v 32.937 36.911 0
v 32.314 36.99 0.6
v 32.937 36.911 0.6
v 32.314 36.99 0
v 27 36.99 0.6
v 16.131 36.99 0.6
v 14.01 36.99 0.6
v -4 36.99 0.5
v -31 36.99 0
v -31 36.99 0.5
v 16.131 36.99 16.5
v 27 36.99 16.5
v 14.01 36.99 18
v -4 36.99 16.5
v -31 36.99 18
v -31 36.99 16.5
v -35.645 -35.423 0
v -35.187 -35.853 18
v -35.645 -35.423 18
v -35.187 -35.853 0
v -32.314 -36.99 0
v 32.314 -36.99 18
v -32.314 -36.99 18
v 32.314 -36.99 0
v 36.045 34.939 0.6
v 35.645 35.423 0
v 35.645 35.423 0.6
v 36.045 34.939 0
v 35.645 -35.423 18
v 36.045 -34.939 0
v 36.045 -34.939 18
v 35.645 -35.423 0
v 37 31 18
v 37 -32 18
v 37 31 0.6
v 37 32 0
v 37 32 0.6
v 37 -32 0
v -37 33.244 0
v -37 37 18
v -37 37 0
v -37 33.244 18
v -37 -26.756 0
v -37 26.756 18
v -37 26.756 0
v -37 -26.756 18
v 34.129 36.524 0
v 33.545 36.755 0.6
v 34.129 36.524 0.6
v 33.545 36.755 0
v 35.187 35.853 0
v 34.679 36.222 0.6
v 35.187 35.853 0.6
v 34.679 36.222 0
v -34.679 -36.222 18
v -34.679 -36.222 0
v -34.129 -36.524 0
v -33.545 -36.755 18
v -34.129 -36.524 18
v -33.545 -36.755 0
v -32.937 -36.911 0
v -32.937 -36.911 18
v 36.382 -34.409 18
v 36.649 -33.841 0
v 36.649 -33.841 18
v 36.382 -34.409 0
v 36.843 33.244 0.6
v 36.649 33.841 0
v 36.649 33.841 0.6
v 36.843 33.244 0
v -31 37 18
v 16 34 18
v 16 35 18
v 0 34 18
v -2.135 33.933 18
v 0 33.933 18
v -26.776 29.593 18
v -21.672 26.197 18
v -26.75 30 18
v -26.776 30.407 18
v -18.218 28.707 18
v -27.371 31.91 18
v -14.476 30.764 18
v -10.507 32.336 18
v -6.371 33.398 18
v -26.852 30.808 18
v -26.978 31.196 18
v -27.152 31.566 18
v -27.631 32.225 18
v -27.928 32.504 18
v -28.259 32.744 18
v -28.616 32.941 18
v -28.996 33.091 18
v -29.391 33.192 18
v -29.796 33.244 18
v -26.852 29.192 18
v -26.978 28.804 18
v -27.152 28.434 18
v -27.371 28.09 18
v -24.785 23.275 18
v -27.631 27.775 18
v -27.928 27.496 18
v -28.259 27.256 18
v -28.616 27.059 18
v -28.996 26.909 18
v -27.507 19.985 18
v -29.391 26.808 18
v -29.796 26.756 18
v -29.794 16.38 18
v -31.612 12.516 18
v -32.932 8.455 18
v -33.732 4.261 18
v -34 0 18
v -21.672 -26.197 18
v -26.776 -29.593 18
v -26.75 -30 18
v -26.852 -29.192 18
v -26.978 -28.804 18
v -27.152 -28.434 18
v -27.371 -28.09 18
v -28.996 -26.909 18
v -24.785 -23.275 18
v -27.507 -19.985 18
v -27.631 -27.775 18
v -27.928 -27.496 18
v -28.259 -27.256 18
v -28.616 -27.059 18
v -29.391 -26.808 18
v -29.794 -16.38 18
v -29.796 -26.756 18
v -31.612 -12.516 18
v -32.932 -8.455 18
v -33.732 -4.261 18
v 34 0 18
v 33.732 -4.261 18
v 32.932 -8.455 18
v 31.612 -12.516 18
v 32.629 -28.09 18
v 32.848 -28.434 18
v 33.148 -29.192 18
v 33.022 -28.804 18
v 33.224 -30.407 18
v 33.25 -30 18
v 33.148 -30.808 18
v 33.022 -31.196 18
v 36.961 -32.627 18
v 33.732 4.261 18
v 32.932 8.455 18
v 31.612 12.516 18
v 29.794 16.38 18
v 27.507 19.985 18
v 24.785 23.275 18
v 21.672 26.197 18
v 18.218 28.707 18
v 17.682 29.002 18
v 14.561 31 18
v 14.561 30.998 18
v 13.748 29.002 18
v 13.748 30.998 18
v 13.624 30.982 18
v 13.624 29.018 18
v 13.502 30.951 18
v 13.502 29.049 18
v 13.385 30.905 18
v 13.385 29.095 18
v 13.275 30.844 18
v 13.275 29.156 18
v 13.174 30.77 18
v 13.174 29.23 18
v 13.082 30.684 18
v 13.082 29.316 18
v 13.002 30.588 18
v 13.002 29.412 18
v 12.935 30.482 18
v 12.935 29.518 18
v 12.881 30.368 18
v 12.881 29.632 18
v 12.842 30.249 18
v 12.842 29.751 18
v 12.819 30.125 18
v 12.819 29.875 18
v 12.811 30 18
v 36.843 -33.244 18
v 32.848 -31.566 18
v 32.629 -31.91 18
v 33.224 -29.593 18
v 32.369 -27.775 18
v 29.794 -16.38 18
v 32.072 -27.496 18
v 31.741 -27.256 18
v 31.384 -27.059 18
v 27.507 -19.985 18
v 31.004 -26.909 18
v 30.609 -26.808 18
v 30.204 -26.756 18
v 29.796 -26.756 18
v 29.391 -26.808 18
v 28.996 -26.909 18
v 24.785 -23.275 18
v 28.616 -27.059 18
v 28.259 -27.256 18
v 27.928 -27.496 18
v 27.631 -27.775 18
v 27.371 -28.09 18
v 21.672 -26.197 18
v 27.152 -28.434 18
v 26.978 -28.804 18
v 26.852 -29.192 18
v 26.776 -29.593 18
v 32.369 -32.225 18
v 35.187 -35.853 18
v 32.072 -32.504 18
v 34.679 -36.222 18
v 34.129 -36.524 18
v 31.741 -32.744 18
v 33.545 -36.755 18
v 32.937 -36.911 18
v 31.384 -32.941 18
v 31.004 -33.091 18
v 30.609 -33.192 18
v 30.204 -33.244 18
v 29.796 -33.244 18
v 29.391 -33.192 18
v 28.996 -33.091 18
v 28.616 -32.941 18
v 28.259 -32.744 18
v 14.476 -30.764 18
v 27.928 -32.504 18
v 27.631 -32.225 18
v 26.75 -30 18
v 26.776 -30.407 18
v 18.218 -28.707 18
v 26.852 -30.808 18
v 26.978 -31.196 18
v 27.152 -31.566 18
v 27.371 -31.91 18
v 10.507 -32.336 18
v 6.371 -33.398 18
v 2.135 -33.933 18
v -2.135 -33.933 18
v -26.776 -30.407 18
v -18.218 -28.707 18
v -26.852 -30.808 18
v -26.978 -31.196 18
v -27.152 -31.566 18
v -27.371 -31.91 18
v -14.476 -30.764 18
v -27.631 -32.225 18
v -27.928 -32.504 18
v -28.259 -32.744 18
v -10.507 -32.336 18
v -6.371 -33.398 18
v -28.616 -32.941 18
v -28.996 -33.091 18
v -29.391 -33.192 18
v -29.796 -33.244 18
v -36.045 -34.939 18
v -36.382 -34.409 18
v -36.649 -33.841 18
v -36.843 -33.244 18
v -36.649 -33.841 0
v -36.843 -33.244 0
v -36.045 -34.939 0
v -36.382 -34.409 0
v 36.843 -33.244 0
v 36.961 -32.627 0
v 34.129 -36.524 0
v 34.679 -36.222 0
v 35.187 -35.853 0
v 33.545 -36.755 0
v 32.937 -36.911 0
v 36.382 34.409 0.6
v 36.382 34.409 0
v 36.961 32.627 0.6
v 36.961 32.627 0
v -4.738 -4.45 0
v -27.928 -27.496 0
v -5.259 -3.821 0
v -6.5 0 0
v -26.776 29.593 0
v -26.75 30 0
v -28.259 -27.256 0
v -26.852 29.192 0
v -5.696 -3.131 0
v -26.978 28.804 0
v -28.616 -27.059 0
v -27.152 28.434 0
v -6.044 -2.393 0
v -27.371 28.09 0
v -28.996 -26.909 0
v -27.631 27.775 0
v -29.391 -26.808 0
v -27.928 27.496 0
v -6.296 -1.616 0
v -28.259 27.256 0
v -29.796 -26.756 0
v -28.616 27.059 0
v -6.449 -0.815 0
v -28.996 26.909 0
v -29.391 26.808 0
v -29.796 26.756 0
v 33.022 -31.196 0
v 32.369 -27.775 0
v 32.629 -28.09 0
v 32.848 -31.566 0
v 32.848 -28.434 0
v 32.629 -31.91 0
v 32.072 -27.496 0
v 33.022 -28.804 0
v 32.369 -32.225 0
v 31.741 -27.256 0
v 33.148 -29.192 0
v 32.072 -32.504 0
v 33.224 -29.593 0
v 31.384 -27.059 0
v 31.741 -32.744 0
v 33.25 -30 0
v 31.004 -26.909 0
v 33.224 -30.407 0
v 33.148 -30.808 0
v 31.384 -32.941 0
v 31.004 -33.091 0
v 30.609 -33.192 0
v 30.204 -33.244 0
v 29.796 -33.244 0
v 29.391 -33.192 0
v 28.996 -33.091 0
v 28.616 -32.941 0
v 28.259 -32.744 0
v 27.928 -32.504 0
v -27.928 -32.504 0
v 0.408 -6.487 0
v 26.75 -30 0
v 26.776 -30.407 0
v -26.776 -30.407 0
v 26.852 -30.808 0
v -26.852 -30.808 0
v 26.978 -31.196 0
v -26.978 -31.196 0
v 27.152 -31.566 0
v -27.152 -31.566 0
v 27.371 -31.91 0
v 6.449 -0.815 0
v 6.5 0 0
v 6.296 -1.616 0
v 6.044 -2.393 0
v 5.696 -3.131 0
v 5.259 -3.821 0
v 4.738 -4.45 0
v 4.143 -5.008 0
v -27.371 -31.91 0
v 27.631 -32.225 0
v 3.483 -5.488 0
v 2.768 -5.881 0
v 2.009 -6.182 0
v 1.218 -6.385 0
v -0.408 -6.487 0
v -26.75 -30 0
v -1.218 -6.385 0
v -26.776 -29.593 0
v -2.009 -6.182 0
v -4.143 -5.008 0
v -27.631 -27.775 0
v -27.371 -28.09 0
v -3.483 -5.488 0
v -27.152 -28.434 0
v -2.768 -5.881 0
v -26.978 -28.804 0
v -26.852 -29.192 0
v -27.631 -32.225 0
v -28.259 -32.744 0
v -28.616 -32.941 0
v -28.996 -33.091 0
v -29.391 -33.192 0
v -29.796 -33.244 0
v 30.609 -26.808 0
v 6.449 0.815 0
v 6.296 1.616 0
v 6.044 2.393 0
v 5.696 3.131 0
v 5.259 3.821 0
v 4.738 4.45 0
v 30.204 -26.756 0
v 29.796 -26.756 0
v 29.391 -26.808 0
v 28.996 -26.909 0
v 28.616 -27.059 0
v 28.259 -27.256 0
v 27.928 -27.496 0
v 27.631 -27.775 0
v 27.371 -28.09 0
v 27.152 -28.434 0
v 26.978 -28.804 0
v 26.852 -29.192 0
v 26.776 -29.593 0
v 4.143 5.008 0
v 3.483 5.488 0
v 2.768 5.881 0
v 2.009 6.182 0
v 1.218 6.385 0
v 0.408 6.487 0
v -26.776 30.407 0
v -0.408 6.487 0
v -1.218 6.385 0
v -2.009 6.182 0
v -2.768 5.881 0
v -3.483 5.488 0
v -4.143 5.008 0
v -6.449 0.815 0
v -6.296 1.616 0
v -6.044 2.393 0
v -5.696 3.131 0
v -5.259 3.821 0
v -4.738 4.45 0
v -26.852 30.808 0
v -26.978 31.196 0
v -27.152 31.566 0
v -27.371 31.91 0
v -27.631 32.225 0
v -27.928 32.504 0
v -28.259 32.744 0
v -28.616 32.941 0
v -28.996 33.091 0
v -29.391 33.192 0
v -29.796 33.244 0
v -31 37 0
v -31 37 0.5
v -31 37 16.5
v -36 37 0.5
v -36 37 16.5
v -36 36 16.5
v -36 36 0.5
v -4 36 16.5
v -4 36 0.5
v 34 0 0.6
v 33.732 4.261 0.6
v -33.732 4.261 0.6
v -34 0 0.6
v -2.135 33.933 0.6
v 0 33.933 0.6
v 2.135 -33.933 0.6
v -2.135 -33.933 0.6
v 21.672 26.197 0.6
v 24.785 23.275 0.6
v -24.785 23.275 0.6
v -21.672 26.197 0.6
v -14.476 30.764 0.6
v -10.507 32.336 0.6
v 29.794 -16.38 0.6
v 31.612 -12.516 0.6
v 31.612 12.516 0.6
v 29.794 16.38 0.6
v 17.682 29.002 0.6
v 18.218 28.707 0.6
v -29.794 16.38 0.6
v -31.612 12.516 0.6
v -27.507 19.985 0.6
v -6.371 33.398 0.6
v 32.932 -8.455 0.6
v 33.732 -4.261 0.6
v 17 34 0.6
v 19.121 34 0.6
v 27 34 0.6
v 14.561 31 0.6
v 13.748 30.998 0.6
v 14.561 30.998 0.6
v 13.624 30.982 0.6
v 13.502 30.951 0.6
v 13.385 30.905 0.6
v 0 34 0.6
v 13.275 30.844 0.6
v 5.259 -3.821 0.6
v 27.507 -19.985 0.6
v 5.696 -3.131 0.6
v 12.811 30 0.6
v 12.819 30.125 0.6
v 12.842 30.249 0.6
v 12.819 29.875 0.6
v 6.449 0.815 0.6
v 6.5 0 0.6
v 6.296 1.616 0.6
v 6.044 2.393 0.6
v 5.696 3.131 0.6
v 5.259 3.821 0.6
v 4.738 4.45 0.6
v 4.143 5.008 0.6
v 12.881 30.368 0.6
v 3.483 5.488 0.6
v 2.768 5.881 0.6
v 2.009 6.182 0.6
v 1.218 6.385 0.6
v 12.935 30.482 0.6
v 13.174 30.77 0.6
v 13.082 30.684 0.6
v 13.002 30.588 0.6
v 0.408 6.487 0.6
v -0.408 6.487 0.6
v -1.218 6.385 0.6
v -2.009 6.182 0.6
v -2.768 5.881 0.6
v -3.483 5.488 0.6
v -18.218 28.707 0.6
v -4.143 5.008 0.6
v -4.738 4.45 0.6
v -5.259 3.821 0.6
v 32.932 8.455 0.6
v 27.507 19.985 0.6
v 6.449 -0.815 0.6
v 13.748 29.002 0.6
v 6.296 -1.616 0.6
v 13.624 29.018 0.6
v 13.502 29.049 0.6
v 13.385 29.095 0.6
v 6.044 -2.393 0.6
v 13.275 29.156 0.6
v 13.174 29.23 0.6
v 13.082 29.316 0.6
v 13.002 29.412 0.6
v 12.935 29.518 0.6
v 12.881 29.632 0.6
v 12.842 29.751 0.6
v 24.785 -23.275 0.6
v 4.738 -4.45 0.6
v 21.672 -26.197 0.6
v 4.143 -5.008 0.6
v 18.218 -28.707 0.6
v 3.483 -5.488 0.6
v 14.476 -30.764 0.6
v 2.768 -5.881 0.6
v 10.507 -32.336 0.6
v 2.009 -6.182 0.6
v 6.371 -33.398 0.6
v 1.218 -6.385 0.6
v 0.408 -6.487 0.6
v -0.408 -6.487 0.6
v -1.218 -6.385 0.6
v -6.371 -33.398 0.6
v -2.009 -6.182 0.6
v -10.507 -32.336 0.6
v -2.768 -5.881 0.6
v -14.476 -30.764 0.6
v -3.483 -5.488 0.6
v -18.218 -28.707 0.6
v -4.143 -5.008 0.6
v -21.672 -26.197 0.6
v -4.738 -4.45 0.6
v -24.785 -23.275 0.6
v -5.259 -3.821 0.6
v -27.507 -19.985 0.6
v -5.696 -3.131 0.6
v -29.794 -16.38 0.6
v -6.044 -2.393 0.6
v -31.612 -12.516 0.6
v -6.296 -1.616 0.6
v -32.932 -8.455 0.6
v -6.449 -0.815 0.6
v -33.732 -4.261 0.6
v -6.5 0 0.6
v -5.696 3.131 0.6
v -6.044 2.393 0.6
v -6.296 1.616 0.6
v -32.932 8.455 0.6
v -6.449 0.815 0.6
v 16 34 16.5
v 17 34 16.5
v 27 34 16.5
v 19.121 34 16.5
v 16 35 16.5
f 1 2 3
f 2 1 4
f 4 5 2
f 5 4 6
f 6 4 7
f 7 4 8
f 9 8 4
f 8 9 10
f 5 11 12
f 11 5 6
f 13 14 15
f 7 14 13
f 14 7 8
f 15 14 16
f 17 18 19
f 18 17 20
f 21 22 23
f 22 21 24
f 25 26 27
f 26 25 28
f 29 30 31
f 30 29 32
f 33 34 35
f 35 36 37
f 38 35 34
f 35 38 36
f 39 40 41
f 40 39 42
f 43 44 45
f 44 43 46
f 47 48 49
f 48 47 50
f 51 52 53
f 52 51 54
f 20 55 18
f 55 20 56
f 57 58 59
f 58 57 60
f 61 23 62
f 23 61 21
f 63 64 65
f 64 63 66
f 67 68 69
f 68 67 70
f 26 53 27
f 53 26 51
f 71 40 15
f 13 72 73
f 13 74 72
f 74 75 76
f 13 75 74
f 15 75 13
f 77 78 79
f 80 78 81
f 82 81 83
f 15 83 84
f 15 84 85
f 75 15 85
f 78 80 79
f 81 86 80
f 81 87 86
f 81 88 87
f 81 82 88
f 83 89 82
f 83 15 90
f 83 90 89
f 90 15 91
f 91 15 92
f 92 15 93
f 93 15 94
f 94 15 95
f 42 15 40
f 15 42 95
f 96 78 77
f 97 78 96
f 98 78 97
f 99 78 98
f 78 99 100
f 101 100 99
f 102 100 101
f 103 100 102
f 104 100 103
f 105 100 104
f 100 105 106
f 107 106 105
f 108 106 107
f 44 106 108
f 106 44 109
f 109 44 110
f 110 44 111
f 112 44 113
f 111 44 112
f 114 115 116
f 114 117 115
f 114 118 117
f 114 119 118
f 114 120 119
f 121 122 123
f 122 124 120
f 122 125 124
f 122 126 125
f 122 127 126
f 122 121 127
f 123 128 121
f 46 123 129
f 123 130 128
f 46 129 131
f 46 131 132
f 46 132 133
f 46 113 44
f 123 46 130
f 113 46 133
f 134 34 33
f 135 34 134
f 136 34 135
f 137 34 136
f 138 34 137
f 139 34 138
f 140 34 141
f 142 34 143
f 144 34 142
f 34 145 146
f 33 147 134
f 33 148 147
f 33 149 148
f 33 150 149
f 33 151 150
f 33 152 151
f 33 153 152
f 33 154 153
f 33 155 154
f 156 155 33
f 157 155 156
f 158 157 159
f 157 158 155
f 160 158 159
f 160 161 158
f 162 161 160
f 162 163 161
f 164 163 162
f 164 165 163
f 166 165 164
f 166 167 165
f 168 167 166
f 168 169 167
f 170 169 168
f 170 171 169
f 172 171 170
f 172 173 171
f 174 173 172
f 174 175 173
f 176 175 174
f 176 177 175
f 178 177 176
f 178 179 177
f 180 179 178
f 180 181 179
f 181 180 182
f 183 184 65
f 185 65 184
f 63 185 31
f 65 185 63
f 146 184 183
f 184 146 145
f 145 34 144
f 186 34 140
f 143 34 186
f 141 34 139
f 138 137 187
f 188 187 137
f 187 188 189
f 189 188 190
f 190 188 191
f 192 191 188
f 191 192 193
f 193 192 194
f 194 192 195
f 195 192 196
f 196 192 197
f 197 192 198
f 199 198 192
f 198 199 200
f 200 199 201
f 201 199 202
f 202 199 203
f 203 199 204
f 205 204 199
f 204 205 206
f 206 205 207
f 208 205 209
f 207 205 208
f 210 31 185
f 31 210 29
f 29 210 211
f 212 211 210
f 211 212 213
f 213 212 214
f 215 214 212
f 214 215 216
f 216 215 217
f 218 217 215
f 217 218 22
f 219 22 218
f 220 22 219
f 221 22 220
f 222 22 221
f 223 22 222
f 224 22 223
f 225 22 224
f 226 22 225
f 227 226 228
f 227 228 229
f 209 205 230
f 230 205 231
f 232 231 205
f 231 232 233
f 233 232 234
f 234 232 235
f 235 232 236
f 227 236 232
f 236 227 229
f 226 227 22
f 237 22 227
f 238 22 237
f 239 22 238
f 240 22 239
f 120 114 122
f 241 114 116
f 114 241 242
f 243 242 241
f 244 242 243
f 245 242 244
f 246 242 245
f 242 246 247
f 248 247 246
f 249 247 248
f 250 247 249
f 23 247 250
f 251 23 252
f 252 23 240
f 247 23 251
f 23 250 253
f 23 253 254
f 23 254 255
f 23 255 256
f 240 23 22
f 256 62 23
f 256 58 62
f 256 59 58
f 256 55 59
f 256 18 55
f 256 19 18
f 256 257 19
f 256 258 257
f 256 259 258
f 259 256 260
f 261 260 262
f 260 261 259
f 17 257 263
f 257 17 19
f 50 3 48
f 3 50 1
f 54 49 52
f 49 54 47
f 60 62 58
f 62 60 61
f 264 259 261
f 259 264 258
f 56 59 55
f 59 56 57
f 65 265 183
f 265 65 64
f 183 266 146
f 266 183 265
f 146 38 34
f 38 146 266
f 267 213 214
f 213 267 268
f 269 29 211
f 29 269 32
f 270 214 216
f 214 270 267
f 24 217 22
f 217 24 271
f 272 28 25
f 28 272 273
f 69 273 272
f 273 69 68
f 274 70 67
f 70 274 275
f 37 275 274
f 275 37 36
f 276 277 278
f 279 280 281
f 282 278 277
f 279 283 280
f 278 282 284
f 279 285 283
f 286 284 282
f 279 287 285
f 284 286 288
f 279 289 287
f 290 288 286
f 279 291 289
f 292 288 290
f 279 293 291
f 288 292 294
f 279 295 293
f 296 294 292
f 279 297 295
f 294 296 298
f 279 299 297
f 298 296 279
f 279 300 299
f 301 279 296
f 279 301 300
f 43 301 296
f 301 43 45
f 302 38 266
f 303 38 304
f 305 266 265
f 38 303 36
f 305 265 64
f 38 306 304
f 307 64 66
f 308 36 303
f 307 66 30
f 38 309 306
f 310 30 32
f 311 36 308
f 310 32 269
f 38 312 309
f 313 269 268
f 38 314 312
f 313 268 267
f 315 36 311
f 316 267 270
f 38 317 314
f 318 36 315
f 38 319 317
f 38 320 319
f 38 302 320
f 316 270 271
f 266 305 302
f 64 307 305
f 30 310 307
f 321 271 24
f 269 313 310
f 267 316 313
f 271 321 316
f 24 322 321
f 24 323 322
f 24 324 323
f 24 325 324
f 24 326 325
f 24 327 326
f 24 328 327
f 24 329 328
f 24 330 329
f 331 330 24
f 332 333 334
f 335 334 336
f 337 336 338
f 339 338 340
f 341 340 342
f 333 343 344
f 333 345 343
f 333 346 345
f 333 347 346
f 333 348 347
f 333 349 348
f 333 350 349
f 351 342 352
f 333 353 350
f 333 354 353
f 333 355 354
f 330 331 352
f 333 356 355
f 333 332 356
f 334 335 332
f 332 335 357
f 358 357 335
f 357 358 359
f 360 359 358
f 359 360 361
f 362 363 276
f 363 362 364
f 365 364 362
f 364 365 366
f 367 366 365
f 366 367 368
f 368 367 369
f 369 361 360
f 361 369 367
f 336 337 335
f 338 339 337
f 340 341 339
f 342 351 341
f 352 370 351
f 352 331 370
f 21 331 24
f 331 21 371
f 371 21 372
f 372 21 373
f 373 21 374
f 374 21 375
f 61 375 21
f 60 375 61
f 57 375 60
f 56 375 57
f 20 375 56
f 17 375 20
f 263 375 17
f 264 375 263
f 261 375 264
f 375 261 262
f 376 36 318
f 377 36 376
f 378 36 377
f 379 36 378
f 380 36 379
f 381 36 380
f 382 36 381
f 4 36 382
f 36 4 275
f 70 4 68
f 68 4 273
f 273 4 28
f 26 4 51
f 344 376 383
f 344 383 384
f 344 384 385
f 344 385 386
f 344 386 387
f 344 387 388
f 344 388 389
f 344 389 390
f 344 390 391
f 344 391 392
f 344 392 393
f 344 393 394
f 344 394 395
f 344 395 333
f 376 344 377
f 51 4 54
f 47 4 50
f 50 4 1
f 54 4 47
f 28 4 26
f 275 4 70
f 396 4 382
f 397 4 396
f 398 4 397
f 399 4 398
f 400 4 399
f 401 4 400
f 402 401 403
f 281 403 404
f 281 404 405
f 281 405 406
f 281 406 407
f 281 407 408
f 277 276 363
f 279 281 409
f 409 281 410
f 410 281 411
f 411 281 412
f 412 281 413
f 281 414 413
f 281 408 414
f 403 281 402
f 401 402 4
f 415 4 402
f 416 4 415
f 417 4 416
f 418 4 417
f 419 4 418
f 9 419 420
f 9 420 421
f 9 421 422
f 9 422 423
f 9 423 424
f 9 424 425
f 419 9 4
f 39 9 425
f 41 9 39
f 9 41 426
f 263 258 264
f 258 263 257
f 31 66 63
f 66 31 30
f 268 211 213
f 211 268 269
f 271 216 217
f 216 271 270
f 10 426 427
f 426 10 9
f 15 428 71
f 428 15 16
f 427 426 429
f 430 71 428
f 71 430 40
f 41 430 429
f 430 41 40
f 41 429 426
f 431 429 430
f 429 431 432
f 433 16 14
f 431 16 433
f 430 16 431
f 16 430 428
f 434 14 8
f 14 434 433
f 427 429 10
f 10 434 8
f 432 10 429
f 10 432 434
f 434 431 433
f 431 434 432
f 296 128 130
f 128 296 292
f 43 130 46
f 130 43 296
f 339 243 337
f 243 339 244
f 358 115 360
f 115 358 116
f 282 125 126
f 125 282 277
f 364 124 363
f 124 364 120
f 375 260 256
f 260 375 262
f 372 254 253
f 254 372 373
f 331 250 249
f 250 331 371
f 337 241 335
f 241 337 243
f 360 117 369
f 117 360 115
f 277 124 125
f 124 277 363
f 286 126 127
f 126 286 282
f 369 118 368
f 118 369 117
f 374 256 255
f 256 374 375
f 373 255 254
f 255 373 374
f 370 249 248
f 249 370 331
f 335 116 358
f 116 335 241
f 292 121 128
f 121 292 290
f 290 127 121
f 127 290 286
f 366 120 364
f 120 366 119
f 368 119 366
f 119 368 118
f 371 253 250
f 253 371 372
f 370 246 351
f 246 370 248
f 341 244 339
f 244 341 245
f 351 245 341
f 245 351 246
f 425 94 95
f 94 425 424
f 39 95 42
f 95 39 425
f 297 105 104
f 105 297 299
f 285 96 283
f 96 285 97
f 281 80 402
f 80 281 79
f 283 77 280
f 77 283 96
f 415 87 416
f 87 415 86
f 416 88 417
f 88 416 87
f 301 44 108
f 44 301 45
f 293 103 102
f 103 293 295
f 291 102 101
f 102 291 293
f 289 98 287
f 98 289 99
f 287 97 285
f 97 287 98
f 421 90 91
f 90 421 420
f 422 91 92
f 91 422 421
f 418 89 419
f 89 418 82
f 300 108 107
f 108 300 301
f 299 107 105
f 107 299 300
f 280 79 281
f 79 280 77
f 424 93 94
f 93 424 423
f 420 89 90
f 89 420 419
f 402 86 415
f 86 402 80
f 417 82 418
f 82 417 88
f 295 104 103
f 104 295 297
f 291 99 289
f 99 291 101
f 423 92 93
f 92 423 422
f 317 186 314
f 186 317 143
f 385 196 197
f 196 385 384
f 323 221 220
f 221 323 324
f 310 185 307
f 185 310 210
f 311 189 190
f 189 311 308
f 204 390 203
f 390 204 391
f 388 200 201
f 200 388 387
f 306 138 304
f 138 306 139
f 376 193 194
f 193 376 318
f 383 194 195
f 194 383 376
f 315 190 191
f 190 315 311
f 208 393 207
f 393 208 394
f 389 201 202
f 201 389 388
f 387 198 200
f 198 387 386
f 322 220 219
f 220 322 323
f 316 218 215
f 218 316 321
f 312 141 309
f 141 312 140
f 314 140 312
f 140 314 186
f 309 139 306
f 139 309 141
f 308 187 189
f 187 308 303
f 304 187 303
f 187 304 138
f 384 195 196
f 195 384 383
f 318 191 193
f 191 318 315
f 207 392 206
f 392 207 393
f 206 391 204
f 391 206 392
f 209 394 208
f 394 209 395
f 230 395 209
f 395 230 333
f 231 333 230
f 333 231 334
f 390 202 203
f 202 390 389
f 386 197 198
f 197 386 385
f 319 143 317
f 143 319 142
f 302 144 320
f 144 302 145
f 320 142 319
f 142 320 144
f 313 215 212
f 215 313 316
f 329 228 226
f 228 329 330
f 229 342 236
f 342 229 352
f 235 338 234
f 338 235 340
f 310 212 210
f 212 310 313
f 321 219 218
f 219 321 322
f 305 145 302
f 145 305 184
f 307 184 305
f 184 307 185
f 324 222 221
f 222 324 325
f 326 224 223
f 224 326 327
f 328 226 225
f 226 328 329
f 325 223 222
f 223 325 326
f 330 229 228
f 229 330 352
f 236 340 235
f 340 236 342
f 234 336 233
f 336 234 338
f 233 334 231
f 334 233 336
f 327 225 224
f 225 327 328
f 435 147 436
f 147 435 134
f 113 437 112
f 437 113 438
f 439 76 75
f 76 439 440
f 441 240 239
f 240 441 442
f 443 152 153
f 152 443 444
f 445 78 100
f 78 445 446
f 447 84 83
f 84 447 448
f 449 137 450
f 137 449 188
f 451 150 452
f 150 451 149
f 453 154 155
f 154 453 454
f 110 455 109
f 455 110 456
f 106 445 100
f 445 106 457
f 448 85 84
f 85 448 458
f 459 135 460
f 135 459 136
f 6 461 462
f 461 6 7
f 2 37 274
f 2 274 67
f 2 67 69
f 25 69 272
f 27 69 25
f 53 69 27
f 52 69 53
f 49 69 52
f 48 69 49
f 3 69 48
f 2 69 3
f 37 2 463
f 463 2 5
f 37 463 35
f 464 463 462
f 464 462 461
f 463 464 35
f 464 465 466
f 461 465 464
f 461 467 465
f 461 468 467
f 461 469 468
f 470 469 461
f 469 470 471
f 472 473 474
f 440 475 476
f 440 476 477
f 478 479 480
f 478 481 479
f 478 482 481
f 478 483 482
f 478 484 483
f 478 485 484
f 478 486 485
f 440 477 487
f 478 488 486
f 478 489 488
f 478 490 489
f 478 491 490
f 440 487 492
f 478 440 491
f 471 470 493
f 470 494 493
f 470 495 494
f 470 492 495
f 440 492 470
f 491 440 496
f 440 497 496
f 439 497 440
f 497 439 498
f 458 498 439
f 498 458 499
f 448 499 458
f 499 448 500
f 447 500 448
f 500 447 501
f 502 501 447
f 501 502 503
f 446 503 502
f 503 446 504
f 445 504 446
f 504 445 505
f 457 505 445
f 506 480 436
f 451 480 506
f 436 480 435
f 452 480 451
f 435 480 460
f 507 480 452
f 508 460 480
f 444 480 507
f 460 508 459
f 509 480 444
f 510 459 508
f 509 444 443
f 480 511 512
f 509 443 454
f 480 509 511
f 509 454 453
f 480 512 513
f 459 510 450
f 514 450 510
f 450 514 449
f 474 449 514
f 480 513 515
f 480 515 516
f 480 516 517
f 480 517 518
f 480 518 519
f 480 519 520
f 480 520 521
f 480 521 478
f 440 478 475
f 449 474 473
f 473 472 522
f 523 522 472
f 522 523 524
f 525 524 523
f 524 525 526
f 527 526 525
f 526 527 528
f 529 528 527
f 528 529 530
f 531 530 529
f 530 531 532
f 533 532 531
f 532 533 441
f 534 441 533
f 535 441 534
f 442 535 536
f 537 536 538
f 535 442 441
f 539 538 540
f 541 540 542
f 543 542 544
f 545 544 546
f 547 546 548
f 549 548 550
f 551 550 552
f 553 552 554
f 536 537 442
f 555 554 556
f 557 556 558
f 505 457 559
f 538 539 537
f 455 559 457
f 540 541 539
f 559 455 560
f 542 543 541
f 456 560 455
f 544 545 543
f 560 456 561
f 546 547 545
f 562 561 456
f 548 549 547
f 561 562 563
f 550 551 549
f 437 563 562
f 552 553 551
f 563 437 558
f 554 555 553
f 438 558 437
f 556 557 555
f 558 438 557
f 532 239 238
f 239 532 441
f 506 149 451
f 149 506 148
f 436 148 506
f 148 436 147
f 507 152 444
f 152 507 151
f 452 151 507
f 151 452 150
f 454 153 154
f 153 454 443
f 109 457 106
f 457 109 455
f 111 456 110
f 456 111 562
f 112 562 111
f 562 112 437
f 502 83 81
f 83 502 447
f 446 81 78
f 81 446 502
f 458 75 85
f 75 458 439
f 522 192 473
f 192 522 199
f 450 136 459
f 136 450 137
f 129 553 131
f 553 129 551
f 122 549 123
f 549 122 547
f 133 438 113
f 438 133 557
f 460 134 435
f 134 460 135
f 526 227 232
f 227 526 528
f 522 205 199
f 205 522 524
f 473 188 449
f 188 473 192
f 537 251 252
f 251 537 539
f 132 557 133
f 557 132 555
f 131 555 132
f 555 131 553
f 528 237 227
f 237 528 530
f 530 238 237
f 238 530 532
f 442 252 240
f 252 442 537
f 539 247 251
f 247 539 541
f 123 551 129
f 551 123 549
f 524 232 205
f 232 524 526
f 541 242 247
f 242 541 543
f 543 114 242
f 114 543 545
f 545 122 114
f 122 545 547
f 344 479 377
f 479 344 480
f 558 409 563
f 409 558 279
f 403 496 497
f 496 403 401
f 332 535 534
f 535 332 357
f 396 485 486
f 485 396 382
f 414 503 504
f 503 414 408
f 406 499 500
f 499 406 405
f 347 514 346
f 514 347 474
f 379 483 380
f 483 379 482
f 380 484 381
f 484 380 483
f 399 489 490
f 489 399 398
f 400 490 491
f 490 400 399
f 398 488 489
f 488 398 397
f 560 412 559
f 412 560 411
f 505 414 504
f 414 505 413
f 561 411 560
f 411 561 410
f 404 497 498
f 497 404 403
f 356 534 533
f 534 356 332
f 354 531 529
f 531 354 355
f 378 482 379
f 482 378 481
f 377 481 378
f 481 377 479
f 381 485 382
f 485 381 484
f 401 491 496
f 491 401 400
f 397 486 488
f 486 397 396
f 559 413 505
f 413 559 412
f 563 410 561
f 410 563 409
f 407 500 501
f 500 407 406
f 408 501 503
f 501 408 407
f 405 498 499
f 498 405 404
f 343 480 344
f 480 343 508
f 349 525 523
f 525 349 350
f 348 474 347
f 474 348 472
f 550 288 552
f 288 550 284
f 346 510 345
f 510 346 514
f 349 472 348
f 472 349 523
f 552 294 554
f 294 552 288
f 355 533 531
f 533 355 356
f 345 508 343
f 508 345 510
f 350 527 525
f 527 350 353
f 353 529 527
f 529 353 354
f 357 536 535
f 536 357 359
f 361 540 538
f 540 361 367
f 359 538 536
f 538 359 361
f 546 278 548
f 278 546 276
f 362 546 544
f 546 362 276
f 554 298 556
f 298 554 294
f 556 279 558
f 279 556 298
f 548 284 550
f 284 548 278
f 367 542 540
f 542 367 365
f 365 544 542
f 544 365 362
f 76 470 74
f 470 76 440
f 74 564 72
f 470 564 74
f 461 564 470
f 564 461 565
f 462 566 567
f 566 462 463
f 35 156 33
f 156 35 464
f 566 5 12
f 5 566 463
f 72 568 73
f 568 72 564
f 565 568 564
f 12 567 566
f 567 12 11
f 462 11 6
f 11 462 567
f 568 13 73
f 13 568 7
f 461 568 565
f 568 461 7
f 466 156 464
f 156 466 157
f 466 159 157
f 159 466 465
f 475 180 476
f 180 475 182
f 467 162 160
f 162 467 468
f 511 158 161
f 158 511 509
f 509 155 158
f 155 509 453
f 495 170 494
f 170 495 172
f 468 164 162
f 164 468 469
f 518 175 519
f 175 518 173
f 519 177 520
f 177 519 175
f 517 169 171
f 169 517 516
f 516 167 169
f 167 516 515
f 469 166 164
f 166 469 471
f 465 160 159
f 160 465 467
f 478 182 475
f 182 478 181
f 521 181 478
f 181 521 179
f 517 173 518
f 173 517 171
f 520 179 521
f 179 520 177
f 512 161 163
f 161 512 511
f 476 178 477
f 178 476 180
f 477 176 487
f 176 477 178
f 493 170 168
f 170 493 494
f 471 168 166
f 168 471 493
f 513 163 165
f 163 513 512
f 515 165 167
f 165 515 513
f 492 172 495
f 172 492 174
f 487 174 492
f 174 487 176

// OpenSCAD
$fn = 50;


union() {
	difference() {
		union() {
			translate(v = [0, 0, 0]) {
				rotate(a = [0, 0, 0]) {
					hull() {
						translate(v = [-32.0000000000, 32.0000000000, 0]) {
							rotate(a = [0, 0, 0]) {
								translate(v = [0, 0, 0]) {
									rotate(a = [0, 0, 0]) {
										cylinder(h = 18, r = 5);
									}
								}
							}
						}
						translate(v = [32.0000000000, 32.0000000000, 0]) {
							rotate(a = [0, 0, 0]) {
								translate(v = [0, 0, 0]) {
									rotate(a = [0, 0, 0]) {
										cylinder(h = 18, r = 5);
									}
								}
							}
						}
						translate(v = [-32.0000000000, -32.0000000000, 0]) {
							rotate(a = [0, 0, 0]) {
								translate(v = [0, 0, 0]) {
									rotate(a = [0, 0, 0]) {
										cylinder(h = 18, r = 5);
									}
								}
							}
						}
						translate(v = [32.0000000000, -32.0000000000, 0]) {
							rotate(a = [0, 0, 0]) {
								translate(v = [0, 0, 0]) {
									rotate(a = [0, 0, 0]) {
										cylinder(h = 18, r = 5);
									}
								}
							}
						}
					}
				}
			}
			translate(v = [-37.0000000000, 31.0000000000, 0]) {
				rotate(a = [0, 0, 0]) {
					cube(size = [6, 6, 18]);
				}
			}
		}
		union() {
			#translate(v = [-36.0000000000, 36.0000000000, 0.5000000000]) {
				rotate(a = [0, 0, 0]) {
					cube(size = [32, 1, 16]);
				}
			}
			translate(v = [-37.5000000000, -30.0000000000, -125]) {
				rotate(a = [0, 0, 0]) {
					hull() {
						translate(v = [7.5000000000, 0, 0]) {
							rotate(a = [0, 0, 0]) {
								translate(v = [0, 0, 0]) {
									rotate(a = [0, 0, 0]) {
										cylinder(h = 250, r = 3.2500000000);
									}
								}
							}
						}
						translate(v = [-7.5000000000, 0, 0]) {
							rotate(a = [0, 0, 0]) {
								translate(v = [0, 0, 0]) {
									rotate(a = [0, 0, 0]) {
										cylinder(h = 250, r = 3.2500000000);
									}
								}
							}
						}
					}
				}
			}
			translate(v = [-37.5000000000, 30.0000000000, -125]) {
				rotate(a = [0, 0, 0]) {
					hull() {
						translate(v = [7.5000000000, 0, 0]) {
							rotate(a = [0, 0, 0]) {
								translate(v = [0, 0, 0]) {
									rotate(a = [0, 0, 0]) {
										cylinder(h = 250, r = 3.2500000000);
									}
								}
							}
						}
						translate(v = [-7.5000000000, 0, 0]) {
							rotate(a = [0, 0, 0]) {
								translate(v = [0, 0, 0]) {
									rotate(a = [0, 0, 0]) {
										cylinder(h = 250, r = 3.2500000000);
									}
								}
							}
						}
					}
				}
			}
			translate(v = [30.0000000000, -30.0000000000, -125.0000000000]) {
				rotate(a = [0, 0, 0]) {
					cylinder(h = 250, r = 3.2500000000);
				}
			}
			translate(v = [0, 0, 0.6000000000]) {
				rotate(a = [0, 0, 0]) {
					cylinder(h = 20.4000000000, r = 34.0000000000);
				}
			}
			translate(v = [0, 0, -9.0000000000]) {
				rotate(a = [0, 0, 0]) {
					cylinder(h = 18, r = 6.5000000000);
				}
			}
			translate(v = [0.0000000000, 31.0000000000, 0.6000000000]) {
				rotate(a = [0, 0, 0]) {
					cube(size = [37.0000000000, 3, 20.4000000000]);
				}
			}
			translate(v = [27.0000000000, 31.0000000000, 0.6000000000]) {
				rotate(a = [0, 0, 0]) {
					cube(size = [10, 6, 20.4000000000]);
				}
			}
			translate(v = [16.0000000000, 31.0000000000, 16.5000000000]) {
				rotate(a = [0, 0, 0]) {
					cube(size = [21, 6, 1.5000000000]);
				}
			}
			translate(v = [13.2500000000, 37.7500000000, 0.6000000000]) {
				rotate(a = [0, 0, -45]) {
					cube(size = [7.5000000000, 1.5000000000, 20.4000000000]);
				}
			}
			translate(v = [7.0610000000, 29.0000000000, 0.6000000000]) {
				rotate(a = [0, 0, 0]) {
					cube(size = [7.5000000000, 2, 17.4000000000]);
				}
			}
		}
	}
	union() {
		translate(v = [16.3110000000, 30.0000000000, 0]) {
			rotate(a = [0, 0, 0]) {
				hull() {
					translate(v = [2.5000000000, 0, 0]) {
						rotate(a = [0, 0, 0]) {
							#translate(v = [0, 0, 0]) {
								rotate(a = [0, 0, 0]) {
									cylinder(h = 18, r = 1.0000000000);
								}
							}
						}
					}
					translate(v = [-2.5000000000, 0, 0]) {
						rotate(a = [0, 0, 0]) {
							#translate(v = [0, 0, 0]) {
								rotate(a = [0, 0, 0]) {
									cylinder(h = 18, r = 1.0000000000);
								}
							}
						}
					}
				}
			}
		}
	}
}
